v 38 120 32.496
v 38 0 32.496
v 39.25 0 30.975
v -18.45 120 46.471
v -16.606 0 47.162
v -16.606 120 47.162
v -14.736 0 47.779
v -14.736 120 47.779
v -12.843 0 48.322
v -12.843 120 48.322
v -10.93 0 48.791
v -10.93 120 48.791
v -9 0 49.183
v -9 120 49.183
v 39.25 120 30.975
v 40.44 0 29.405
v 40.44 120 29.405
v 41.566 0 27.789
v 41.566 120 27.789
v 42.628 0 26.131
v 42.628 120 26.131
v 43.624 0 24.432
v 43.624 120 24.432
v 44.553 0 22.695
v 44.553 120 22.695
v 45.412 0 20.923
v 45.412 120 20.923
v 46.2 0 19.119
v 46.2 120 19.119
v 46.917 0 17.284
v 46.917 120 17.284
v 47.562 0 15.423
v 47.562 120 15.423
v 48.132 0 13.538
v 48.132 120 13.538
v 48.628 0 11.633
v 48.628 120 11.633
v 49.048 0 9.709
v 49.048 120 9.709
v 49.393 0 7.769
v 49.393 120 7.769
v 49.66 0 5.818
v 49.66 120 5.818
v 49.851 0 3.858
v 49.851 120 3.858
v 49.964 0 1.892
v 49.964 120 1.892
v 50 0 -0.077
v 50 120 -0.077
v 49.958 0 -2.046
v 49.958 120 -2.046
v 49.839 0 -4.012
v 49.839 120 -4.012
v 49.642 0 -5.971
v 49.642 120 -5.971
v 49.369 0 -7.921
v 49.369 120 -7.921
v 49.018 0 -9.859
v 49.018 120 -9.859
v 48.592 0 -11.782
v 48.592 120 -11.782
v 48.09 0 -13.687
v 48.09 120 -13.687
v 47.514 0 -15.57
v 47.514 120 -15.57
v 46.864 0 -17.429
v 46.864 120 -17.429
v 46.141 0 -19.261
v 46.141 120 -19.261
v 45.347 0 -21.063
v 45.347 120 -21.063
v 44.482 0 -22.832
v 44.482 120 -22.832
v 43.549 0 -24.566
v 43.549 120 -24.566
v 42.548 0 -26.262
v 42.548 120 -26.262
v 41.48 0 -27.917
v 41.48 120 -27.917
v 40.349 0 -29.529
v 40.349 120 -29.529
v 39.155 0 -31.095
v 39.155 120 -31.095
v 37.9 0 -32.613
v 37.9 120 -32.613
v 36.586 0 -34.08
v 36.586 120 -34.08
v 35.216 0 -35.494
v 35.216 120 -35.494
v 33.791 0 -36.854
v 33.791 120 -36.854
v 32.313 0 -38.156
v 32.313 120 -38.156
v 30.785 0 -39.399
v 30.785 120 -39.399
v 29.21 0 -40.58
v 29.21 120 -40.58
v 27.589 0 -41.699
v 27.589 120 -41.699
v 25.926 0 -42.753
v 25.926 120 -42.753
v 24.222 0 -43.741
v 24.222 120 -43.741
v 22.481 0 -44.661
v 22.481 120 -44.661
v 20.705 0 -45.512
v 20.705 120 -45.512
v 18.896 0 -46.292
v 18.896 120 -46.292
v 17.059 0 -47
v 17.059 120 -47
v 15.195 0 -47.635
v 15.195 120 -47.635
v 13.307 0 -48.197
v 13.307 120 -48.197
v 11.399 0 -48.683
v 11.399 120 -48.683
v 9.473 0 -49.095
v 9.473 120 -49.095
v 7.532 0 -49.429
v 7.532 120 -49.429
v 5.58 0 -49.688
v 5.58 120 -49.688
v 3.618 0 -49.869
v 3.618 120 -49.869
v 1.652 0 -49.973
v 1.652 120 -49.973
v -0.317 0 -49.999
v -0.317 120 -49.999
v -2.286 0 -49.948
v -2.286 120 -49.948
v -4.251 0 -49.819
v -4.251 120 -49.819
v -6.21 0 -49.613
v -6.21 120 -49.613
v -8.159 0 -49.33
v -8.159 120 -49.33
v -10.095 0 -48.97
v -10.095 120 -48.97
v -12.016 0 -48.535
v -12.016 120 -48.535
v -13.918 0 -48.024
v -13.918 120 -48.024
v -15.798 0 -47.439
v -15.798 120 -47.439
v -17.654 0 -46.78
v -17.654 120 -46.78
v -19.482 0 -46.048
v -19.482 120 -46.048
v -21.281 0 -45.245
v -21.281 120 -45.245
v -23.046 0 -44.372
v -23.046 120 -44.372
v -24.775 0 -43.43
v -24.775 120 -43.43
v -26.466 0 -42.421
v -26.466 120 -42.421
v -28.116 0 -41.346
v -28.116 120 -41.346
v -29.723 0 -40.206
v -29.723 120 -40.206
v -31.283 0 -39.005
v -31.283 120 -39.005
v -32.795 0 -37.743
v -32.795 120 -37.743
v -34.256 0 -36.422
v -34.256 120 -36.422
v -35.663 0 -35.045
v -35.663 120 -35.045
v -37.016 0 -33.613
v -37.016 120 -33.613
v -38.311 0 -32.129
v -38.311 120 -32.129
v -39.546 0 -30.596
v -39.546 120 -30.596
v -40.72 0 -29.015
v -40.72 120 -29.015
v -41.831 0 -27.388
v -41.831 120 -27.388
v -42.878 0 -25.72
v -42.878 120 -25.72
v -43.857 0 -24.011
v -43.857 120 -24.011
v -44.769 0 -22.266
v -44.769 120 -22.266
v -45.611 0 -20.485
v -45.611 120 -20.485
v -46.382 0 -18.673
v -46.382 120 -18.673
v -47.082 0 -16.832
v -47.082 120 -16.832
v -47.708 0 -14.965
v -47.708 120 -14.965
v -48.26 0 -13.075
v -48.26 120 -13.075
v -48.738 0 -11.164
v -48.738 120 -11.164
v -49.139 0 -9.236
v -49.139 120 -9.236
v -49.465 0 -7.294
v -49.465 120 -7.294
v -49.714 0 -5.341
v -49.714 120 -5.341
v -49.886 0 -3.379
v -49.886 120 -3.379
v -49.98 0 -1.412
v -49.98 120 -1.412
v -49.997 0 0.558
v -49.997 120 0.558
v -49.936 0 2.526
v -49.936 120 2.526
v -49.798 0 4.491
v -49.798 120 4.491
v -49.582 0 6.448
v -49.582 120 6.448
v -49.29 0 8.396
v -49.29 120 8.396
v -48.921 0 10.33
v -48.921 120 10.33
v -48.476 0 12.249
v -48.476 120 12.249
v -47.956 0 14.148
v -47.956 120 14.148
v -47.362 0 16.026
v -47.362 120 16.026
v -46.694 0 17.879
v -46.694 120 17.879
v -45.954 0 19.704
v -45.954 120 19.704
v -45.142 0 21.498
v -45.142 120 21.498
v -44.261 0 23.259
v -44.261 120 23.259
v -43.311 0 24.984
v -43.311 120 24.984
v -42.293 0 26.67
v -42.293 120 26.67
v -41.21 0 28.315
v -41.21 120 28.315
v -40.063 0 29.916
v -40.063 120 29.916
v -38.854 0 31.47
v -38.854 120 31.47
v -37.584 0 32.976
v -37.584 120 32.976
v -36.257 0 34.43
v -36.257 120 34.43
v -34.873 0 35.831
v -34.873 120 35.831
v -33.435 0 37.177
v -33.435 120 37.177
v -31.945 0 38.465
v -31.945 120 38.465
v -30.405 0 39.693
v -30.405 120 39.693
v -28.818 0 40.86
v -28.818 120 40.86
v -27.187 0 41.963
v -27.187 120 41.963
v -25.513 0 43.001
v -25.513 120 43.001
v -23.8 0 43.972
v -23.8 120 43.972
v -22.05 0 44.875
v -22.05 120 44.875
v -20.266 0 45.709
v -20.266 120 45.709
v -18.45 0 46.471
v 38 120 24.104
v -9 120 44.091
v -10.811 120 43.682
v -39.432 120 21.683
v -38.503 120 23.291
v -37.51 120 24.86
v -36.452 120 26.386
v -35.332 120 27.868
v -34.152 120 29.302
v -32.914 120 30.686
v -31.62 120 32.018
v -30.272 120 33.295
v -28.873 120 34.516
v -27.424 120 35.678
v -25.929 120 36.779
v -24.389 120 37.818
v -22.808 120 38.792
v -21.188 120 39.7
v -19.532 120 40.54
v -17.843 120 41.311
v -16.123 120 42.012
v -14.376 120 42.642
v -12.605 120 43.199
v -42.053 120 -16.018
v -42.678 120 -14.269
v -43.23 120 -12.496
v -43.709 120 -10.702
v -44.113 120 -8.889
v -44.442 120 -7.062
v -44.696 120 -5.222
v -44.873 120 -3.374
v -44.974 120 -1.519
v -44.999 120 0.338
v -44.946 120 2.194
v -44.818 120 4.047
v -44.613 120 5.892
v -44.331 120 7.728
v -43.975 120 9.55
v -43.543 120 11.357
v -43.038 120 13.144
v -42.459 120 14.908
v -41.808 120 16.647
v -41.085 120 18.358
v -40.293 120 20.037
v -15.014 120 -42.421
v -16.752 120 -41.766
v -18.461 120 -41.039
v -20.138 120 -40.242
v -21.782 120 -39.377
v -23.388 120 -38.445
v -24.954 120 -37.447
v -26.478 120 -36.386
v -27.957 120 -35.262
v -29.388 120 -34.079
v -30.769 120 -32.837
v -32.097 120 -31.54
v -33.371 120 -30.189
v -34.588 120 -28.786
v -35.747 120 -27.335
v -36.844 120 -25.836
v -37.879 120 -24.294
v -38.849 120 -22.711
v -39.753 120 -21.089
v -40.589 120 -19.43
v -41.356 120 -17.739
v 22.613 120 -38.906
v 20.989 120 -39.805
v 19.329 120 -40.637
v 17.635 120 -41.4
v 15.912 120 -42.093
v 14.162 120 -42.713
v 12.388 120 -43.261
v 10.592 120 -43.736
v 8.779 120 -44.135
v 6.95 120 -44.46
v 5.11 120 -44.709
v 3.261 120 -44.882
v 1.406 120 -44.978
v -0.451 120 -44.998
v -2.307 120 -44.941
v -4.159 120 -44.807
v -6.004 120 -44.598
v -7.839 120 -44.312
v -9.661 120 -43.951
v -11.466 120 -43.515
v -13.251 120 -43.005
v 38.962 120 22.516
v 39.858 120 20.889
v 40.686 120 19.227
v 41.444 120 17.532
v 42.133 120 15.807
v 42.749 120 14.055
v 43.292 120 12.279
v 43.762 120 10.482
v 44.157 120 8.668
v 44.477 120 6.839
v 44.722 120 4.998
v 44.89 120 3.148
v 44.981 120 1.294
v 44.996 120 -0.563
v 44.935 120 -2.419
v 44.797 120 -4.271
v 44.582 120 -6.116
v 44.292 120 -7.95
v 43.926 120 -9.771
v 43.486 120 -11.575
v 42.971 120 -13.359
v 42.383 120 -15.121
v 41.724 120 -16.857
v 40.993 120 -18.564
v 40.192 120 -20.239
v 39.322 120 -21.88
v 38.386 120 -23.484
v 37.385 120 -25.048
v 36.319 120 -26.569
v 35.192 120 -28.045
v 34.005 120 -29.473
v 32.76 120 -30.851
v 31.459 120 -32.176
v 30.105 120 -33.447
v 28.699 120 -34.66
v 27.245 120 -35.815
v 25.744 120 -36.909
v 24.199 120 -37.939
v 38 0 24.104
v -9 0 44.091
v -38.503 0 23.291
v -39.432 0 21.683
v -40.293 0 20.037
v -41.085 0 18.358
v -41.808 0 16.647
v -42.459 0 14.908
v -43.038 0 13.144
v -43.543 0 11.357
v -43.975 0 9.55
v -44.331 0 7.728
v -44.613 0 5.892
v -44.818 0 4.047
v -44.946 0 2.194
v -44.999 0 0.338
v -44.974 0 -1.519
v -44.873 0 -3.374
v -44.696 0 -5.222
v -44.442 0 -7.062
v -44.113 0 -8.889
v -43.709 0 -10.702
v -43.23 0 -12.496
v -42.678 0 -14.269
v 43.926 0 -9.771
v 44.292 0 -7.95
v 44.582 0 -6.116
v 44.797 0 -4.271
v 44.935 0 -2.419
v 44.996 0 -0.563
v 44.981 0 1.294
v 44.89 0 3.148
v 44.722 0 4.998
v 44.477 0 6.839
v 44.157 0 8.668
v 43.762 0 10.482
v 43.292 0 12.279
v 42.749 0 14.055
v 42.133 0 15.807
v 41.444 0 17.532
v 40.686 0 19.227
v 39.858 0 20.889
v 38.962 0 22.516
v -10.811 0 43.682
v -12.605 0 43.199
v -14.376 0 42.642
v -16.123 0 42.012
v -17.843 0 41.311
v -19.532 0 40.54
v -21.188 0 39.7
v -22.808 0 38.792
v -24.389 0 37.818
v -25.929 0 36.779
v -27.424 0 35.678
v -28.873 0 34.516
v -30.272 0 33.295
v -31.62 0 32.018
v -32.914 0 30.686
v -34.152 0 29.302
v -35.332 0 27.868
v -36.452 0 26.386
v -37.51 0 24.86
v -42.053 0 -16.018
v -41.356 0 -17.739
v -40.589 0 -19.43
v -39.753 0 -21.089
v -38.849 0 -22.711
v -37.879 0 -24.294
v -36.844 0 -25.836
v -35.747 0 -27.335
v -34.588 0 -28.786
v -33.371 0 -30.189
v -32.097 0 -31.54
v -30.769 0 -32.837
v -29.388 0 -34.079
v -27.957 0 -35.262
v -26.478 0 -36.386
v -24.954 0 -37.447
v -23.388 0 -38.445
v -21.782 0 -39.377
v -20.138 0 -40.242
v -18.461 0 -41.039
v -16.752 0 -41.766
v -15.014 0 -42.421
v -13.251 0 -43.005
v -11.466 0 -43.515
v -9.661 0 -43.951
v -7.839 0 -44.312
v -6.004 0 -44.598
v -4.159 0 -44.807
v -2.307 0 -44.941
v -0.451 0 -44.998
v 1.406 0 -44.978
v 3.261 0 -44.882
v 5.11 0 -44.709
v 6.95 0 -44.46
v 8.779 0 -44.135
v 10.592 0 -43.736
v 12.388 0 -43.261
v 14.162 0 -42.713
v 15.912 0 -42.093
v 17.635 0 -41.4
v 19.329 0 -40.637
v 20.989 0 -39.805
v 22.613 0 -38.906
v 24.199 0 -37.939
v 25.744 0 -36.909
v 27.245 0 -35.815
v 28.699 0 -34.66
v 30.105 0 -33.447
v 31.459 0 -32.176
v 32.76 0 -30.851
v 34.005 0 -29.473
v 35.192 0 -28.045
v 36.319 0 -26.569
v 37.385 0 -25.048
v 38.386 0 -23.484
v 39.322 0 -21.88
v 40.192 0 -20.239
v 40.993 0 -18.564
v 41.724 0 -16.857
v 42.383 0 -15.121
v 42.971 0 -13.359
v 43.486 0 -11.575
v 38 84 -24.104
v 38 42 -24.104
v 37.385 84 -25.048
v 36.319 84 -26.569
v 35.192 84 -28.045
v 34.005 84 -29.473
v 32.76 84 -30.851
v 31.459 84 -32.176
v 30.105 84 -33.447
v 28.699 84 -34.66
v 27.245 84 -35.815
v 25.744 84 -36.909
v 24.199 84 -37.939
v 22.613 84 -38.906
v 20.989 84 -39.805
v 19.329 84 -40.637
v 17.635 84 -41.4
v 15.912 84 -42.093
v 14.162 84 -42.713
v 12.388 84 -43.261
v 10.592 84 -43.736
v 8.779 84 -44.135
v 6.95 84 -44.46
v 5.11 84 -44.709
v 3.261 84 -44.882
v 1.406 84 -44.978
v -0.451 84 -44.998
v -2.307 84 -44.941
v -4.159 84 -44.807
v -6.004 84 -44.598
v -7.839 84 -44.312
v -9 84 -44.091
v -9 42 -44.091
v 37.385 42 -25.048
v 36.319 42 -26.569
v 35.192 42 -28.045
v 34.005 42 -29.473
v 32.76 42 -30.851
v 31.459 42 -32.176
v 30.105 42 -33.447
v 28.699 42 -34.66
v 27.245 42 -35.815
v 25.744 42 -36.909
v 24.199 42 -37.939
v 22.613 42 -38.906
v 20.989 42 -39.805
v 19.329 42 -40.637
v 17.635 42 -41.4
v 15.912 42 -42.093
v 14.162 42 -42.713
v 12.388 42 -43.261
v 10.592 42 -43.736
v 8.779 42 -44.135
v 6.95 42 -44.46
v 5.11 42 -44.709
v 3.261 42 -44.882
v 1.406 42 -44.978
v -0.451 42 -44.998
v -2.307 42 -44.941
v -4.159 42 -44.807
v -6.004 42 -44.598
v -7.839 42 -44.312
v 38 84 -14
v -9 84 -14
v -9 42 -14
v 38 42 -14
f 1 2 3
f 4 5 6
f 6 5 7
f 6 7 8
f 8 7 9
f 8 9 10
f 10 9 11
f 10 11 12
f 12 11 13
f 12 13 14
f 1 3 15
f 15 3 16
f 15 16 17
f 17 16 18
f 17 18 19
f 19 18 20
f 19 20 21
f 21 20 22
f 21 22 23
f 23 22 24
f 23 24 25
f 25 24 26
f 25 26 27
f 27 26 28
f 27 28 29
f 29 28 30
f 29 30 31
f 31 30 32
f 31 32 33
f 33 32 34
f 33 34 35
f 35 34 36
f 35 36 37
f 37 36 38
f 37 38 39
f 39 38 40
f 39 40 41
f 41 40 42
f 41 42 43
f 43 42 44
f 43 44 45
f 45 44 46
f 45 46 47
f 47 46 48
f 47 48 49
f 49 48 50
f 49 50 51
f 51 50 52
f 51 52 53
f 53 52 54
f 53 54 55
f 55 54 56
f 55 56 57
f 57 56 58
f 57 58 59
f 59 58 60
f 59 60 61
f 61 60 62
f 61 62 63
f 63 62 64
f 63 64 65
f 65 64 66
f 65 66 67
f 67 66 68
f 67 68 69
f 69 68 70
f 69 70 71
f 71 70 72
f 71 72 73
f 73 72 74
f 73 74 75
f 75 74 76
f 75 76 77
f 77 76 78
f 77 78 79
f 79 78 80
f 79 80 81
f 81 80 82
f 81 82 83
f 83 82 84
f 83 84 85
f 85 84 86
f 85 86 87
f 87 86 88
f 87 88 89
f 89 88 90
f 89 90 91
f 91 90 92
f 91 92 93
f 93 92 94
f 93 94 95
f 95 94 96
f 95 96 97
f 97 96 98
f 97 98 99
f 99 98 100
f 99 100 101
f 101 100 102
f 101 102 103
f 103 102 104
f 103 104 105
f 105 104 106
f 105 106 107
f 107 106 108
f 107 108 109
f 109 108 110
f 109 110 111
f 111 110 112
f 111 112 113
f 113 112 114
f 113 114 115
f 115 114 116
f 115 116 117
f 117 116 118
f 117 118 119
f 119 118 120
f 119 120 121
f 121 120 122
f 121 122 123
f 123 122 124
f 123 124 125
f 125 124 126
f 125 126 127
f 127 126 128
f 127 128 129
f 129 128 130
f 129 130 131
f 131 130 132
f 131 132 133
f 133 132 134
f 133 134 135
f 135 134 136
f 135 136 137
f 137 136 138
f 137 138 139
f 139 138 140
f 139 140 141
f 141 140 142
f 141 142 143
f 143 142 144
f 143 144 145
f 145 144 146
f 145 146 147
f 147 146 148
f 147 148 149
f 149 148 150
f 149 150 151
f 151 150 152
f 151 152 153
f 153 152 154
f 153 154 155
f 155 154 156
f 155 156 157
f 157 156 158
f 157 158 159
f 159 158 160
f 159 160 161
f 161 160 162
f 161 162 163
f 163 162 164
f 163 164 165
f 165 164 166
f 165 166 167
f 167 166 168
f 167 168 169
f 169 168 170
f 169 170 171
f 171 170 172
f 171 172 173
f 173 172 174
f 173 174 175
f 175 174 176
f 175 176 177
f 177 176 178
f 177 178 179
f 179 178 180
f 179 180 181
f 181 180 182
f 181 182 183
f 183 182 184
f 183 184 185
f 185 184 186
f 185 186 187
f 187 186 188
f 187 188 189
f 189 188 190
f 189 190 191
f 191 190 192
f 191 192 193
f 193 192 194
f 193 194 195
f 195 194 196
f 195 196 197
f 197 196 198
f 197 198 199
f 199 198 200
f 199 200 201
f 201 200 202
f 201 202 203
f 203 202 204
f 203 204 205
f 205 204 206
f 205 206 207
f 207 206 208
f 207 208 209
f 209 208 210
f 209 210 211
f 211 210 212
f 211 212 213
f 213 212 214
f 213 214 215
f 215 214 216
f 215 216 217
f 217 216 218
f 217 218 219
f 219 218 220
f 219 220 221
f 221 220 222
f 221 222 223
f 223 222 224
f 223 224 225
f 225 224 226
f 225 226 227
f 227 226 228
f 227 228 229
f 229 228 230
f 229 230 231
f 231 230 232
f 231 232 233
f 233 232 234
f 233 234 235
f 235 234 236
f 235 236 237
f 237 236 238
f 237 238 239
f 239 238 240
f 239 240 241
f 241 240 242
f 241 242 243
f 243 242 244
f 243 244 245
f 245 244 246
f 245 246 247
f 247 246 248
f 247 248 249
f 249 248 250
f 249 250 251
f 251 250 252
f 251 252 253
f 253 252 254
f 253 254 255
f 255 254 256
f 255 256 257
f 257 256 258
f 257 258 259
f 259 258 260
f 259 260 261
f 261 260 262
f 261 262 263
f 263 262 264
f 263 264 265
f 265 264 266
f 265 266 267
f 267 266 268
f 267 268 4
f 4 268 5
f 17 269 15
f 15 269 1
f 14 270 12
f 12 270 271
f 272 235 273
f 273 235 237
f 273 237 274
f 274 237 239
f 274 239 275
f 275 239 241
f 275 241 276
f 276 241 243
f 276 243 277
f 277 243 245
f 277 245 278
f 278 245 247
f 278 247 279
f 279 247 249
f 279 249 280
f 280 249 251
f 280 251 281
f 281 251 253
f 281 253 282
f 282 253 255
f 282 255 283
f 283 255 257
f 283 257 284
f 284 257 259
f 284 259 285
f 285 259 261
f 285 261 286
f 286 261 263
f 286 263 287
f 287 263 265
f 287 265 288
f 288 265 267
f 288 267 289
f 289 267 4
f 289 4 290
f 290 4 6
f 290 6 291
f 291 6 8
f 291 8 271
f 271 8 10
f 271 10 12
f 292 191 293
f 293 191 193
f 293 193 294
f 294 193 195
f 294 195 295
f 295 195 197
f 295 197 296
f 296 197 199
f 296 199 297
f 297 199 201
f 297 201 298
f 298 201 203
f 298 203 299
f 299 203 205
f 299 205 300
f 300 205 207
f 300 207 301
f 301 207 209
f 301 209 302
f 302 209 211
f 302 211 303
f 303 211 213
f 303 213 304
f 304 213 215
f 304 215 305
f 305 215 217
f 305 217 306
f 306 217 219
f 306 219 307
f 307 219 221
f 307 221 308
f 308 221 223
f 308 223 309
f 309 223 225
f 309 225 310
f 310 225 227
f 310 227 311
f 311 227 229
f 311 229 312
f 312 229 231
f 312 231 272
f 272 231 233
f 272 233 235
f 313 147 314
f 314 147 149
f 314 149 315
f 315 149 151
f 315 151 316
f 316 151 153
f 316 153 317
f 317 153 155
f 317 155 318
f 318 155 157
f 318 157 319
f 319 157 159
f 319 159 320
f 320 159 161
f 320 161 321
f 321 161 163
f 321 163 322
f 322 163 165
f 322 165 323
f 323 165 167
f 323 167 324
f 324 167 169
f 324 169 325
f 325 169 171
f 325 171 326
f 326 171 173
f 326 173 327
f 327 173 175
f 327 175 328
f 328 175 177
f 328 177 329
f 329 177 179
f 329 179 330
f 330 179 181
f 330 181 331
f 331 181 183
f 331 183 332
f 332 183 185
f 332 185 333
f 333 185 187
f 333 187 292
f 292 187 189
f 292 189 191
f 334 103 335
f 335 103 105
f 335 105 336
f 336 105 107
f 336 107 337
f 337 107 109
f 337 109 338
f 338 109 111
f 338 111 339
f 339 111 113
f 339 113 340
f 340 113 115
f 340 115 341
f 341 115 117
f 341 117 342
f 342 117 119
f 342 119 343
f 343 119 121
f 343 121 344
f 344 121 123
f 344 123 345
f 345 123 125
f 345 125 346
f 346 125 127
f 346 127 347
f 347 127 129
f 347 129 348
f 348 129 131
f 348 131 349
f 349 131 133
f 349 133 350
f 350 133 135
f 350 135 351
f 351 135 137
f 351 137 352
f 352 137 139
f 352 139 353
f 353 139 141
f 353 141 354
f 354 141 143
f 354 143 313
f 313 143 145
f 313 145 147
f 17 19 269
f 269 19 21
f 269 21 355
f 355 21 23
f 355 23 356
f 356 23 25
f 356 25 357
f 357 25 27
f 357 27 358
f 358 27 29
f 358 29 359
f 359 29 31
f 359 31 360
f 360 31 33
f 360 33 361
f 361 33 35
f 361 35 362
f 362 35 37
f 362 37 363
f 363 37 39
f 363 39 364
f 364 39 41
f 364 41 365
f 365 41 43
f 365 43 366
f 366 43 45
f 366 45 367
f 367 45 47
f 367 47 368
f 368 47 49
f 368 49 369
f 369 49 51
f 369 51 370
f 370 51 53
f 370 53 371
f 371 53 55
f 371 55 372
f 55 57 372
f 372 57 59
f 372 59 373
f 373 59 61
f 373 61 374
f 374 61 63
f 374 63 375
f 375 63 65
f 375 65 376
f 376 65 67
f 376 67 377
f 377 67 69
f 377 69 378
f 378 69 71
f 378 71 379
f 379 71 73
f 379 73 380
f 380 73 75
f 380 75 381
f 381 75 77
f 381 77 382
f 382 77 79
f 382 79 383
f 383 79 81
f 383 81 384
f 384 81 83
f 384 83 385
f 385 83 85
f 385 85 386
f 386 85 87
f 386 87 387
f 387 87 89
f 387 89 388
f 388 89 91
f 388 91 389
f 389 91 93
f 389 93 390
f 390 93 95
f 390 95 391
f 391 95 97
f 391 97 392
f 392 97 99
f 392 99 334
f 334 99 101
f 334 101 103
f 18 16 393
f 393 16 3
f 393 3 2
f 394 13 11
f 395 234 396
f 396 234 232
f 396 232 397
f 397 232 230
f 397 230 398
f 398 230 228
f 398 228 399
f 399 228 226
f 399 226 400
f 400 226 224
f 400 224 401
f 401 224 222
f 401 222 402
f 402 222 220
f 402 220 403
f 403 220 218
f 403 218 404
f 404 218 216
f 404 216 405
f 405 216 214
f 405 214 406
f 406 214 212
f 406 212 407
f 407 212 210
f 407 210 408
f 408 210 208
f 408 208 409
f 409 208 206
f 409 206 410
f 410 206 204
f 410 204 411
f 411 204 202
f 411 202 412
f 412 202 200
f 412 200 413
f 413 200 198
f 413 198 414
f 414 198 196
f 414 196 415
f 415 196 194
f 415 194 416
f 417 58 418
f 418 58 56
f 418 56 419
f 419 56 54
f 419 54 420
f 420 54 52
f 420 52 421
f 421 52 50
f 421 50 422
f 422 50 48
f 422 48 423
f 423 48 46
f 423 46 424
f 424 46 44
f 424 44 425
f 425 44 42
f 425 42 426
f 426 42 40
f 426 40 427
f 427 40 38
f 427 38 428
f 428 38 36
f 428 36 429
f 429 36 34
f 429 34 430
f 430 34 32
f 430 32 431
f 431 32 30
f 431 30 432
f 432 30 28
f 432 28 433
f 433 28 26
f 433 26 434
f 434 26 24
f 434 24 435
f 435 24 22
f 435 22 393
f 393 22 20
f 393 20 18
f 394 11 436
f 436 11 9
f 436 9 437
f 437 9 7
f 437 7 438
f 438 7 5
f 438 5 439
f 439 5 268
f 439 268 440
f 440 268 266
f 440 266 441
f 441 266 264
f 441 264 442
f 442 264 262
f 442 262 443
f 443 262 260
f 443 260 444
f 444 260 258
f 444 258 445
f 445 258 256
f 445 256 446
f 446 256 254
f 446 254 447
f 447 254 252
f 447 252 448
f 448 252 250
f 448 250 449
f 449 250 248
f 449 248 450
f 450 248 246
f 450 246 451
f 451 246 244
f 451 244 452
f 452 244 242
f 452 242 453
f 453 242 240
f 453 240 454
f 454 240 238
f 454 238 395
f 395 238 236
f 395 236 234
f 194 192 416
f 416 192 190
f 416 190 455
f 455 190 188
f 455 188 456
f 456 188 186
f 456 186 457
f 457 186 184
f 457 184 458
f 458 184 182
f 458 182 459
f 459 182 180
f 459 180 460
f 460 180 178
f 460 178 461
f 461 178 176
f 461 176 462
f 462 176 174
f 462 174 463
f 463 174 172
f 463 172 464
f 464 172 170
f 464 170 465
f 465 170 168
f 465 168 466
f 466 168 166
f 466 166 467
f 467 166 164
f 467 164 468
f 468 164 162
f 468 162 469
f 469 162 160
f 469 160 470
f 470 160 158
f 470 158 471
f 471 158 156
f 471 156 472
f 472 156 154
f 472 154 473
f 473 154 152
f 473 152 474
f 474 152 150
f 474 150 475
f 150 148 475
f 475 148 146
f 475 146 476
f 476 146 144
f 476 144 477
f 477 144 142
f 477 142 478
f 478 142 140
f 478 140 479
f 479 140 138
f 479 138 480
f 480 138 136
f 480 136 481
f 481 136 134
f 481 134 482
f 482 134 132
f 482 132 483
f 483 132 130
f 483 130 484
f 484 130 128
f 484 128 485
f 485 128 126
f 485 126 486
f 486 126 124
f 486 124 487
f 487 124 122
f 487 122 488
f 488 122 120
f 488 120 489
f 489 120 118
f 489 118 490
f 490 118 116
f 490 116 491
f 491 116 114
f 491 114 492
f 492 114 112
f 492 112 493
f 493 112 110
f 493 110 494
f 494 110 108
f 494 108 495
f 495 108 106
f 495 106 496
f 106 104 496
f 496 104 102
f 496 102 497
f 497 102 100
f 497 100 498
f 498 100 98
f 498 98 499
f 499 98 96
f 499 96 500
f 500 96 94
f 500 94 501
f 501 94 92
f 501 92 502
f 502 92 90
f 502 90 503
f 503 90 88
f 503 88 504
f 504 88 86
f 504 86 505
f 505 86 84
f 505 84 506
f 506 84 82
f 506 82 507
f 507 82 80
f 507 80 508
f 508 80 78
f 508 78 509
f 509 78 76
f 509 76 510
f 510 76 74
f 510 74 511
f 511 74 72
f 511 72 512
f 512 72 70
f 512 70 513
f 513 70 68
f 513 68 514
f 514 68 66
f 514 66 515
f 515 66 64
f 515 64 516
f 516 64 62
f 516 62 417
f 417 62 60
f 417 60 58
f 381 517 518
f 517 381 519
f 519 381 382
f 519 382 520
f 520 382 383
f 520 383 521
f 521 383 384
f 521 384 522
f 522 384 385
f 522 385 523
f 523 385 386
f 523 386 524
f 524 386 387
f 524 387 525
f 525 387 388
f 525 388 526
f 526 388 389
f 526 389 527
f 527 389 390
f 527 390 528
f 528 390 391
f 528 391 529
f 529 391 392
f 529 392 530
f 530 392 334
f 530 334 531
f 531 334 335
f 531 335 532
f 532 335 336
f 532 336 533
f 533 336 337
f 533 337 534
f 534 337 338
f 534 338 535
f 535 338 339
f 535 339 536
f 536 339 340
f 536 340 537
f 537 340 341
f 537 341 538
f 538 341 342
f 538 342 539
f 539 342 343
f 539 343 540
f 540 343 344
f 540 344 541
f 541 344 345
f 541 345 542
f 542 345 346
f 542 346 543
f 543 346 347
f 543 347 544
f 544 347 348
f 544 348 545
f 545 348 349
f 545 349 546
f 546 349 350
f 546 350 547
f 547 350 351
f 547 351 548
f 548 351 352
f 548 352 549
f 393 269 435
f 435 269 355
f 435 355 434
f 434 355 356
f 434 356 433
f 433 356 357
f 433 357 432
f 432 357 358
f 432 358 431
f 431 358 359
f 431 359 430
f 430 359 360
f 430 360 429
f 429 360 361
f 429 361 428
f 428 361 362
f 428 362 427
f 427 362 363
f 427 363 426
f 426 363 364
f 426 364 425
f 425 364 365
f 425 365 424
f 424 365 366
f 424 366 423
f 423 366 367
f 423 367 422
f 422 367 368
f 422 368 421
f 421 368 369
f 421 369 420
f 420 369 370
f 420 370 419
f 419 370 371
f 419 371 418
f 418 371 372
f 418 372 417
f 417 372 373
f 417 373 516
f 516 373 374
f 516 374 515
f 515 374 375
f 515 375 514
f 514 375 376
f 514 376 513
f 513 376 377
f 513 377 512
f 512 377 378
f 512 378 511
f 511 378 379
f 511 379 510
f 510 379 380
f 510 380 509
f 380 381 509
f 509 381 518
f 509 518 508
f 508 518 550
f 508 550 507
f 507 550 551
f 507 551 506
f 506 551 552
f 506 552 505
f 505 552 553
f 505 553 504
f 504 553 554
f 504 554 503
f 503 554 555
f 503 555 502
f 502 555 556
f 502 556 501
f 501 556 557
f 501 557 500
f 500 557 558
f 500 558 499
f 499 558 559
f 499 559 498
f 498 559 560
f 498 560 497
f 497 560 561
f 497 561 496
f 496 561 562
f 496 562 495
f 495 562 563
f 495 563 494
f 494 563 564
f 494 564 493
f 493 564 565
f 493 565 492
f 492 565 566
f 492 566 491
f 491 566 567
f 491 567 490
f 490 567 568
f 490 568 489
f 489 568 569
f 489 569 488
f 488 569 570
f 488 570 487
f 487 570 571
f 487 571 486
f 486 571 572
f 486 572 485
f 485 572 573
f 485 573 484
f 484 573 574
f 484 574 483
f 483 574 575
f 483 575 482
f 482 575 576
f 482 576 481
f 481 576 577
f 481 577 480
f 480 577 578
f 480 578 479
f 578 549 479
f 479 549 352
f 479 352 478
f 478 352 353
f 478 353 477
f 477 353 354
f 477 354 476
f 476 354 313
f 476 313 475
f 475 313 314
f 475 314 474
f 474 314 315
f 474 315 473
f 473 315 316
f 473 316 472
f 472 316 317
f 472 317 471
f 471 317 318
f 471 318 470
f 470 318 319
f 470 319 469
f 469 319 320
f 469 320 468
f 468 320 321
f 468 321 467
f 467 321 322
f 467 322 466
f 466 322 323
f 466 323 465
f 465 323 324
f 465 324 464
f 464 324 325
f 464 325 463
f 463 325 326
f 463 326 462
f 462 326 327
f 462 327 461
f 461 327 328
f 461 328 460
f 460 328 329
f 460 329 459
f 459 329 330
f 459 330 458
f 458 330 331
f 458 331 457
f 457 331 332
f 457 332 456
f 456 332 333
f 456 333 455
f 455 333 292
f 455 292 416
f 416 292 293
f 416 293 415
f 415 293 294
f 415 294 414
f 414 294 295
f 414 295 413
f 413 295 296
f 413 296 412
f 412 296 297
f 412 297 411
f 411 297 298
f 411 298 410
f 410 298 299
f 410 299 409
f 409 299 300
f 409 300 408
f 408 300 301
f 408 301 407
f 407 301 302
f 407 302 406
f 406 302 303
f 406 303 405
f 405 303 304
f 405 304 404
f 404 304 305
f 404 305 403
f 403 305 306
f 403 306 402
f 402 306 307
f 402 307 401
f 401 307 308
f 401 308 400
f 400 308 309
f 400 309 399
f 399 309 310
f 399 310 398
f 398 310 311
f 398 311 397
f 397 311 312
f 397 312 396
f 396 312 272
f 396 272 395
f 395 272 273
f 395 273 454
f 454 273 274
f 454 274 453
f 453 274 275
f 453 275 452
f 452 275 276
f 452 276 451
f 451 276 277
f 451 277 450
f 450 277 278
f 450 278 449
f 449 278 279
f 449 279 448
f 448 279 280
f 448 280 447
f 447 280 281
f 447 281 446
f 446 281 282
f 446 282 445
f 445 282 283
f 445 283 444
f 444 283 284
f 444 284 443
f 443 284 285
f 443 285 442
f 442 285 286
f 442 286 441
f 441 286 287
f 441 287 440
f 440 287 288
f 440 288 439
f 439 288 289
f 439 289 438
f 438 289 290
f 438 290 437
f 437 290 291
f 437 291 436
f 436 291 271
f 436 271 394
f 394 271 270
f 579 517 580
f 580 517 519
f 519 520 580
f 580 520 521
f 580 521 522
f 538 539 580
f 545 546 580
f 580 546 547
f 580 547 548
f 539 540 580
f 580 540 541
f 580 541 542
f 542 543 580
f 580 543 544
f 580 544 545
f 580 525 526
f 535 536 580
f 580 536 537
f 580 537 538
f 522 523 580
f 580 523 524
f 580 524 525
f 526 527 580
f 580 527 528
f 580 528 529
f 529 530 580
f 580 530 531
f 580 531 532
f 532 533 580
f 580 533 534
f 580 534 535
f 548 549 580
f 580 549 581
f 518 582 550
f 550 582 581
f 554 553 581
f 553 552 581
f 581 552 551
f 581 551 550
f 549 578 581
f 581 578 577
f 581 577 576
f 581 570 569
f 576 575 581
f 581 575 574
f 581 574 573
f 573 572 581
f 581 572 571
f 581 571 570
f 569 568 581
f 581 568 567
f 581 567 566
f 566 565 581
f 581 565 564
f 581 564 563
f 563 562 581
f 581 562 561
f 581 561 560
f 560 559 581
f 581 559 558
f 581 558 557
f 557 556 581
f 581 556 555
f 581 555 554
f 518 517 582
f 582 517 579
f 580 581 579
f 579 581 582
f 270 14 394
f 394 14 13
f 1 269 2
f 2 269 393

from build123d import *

# Parameters (mm, degrees)
CROQUIS1_R                   = 50
SALIENTE_EXTRUIR1_DEPTH      = 120
CORTAR_EXTRUIR1_REACH        = 141.284
CROQUIS2_R                   = 45
SALIENTE_EXTRUIR2_REACH      = 141.284
SALIENTE_EXTRUIR2_END_RADIUS = 45
CROQUIS4_W                   = 47
CROQUIS4_H                   = 42
CROQUIS5_W                   = 47
CROQUIS5_H                   = 42
CORTAR_EXTRUIR2_DEPTH        = 14
CORTAR_EXTRUIR3_REACH        = 141.284


with BuildPart() as part:
    # Croquis1 → Saliente-Extruir1 (new body)
    with BuildSketch(Plane(origin=(0, 0, 0), x_dir=(1, 0, 0), z_dir=(0, 1, 0))):
        with Locations(Location((0, 0, 0), (0, 0, 270))):
            Circle(CROQUIS1_R)
    extrude(amount=SALIENTE_EXTRUIR1_DEPTH)

    # Croquis2 → Cortar-Extruir1 (cut, up to next)
    with BuildSketch(Plane(origin=(0, 120, 0), x_dir=(1, 0, 0), z_dir=(0, 1, 0)), mode=Mode.PRIVATE) as cortar_extruir1_sk1:
        with Locations(Location((0, 0, 0), (0, 0, 270))):
            Circle(CROQUIS2_R)
    cortar_extruir1_tool1 = extrude(cortar_extruir1_sk1.sketch, amount=-CORTAR_EXTRUIR1_REACH, mode=Mode.PRIVATE) & part.part
    add(cortar_extruir1_tool1.solids().sort_by_distance((0, 120, 0))[0], mode=Mode.SUBTRACT)

    # Saliente-Extruir2: up to this cylinder (the profile starts inside it)
    saliente_extruir2_end = Plane(origin=(0, 63, 0), z_dir=(0, 1, 0)) * Cylinder(SALIENTE_EXTRUIR2_END_RADIUS, 373.568, mode=Mode.PRIVATE)
    # Croquis4 → Saliente-Extruir2 (add, up to the surface)
    with BuildSketch(Plane.XY, mode=Mode.PRIVATE) as saliente_extruir2_sk1:
        with Locations((14.5, 63)):
            Rectangle(CROQUIS4_W, CROQUIS4_H)
    saliente_extruir2_tool1 = extrude(saliente_extruir2_sk1.sketch, amount=-SALIENTE_EXTRUIR2_REACH, mode=Mode.PRIVATE) & saliente_extruir2_end
    add(saliente_extruir2_tool1.solids().sort_by_distance((14.5, 63, 0))[0])

    # Croquis5 → Cortar-Extruir2 (cut)
    with BuildSketch(Plane.XY):
        with Locations((14.5, 63)):
            Rectangle(CROQUIS5_W, CROQUIS5_H)
    extrude(amount=-CORTAR_EXTRUIR2_DEPTH, mode=Mode.SUBTRACT)

    # Croquis7 → Cortar-Extruir3 (cut, up to next)
    with BuildSketch(Plane(origin=(0, 120, 0), x_dir=(1, 0, 0), z_dir=(0, 1, 0)), mode=Mode.PRIVATE) as cortar_extruir3_sk1:
        with BuildLine():
            Line((-9, -44.09081537), (-9, -49.183330509))
            ThreePointArc((-9, -49.183330509), (16.72918014, -47.118303576), (38, -32.496153619))
            Line((38, -32.496153619), (38, -24.103941586))
            ThreePointArc((38, -24.103941586), (17.61018969, -41.41112434), (-9, -44.09081537))
        make_face()
    cortar_extruir3_tool1 = extrude(cortar_extruir3_sk1.sketch, amount=-CORTAR_EXTRUIR3_REACH, mode=Mode.PRIVATE) & part.part
    add(cortar_extruir3_tool1.solids().sort_by_distance((16.242492, 120, 42.000337))[0], mode=Mode.SUBTRACT)


solid = part.part
